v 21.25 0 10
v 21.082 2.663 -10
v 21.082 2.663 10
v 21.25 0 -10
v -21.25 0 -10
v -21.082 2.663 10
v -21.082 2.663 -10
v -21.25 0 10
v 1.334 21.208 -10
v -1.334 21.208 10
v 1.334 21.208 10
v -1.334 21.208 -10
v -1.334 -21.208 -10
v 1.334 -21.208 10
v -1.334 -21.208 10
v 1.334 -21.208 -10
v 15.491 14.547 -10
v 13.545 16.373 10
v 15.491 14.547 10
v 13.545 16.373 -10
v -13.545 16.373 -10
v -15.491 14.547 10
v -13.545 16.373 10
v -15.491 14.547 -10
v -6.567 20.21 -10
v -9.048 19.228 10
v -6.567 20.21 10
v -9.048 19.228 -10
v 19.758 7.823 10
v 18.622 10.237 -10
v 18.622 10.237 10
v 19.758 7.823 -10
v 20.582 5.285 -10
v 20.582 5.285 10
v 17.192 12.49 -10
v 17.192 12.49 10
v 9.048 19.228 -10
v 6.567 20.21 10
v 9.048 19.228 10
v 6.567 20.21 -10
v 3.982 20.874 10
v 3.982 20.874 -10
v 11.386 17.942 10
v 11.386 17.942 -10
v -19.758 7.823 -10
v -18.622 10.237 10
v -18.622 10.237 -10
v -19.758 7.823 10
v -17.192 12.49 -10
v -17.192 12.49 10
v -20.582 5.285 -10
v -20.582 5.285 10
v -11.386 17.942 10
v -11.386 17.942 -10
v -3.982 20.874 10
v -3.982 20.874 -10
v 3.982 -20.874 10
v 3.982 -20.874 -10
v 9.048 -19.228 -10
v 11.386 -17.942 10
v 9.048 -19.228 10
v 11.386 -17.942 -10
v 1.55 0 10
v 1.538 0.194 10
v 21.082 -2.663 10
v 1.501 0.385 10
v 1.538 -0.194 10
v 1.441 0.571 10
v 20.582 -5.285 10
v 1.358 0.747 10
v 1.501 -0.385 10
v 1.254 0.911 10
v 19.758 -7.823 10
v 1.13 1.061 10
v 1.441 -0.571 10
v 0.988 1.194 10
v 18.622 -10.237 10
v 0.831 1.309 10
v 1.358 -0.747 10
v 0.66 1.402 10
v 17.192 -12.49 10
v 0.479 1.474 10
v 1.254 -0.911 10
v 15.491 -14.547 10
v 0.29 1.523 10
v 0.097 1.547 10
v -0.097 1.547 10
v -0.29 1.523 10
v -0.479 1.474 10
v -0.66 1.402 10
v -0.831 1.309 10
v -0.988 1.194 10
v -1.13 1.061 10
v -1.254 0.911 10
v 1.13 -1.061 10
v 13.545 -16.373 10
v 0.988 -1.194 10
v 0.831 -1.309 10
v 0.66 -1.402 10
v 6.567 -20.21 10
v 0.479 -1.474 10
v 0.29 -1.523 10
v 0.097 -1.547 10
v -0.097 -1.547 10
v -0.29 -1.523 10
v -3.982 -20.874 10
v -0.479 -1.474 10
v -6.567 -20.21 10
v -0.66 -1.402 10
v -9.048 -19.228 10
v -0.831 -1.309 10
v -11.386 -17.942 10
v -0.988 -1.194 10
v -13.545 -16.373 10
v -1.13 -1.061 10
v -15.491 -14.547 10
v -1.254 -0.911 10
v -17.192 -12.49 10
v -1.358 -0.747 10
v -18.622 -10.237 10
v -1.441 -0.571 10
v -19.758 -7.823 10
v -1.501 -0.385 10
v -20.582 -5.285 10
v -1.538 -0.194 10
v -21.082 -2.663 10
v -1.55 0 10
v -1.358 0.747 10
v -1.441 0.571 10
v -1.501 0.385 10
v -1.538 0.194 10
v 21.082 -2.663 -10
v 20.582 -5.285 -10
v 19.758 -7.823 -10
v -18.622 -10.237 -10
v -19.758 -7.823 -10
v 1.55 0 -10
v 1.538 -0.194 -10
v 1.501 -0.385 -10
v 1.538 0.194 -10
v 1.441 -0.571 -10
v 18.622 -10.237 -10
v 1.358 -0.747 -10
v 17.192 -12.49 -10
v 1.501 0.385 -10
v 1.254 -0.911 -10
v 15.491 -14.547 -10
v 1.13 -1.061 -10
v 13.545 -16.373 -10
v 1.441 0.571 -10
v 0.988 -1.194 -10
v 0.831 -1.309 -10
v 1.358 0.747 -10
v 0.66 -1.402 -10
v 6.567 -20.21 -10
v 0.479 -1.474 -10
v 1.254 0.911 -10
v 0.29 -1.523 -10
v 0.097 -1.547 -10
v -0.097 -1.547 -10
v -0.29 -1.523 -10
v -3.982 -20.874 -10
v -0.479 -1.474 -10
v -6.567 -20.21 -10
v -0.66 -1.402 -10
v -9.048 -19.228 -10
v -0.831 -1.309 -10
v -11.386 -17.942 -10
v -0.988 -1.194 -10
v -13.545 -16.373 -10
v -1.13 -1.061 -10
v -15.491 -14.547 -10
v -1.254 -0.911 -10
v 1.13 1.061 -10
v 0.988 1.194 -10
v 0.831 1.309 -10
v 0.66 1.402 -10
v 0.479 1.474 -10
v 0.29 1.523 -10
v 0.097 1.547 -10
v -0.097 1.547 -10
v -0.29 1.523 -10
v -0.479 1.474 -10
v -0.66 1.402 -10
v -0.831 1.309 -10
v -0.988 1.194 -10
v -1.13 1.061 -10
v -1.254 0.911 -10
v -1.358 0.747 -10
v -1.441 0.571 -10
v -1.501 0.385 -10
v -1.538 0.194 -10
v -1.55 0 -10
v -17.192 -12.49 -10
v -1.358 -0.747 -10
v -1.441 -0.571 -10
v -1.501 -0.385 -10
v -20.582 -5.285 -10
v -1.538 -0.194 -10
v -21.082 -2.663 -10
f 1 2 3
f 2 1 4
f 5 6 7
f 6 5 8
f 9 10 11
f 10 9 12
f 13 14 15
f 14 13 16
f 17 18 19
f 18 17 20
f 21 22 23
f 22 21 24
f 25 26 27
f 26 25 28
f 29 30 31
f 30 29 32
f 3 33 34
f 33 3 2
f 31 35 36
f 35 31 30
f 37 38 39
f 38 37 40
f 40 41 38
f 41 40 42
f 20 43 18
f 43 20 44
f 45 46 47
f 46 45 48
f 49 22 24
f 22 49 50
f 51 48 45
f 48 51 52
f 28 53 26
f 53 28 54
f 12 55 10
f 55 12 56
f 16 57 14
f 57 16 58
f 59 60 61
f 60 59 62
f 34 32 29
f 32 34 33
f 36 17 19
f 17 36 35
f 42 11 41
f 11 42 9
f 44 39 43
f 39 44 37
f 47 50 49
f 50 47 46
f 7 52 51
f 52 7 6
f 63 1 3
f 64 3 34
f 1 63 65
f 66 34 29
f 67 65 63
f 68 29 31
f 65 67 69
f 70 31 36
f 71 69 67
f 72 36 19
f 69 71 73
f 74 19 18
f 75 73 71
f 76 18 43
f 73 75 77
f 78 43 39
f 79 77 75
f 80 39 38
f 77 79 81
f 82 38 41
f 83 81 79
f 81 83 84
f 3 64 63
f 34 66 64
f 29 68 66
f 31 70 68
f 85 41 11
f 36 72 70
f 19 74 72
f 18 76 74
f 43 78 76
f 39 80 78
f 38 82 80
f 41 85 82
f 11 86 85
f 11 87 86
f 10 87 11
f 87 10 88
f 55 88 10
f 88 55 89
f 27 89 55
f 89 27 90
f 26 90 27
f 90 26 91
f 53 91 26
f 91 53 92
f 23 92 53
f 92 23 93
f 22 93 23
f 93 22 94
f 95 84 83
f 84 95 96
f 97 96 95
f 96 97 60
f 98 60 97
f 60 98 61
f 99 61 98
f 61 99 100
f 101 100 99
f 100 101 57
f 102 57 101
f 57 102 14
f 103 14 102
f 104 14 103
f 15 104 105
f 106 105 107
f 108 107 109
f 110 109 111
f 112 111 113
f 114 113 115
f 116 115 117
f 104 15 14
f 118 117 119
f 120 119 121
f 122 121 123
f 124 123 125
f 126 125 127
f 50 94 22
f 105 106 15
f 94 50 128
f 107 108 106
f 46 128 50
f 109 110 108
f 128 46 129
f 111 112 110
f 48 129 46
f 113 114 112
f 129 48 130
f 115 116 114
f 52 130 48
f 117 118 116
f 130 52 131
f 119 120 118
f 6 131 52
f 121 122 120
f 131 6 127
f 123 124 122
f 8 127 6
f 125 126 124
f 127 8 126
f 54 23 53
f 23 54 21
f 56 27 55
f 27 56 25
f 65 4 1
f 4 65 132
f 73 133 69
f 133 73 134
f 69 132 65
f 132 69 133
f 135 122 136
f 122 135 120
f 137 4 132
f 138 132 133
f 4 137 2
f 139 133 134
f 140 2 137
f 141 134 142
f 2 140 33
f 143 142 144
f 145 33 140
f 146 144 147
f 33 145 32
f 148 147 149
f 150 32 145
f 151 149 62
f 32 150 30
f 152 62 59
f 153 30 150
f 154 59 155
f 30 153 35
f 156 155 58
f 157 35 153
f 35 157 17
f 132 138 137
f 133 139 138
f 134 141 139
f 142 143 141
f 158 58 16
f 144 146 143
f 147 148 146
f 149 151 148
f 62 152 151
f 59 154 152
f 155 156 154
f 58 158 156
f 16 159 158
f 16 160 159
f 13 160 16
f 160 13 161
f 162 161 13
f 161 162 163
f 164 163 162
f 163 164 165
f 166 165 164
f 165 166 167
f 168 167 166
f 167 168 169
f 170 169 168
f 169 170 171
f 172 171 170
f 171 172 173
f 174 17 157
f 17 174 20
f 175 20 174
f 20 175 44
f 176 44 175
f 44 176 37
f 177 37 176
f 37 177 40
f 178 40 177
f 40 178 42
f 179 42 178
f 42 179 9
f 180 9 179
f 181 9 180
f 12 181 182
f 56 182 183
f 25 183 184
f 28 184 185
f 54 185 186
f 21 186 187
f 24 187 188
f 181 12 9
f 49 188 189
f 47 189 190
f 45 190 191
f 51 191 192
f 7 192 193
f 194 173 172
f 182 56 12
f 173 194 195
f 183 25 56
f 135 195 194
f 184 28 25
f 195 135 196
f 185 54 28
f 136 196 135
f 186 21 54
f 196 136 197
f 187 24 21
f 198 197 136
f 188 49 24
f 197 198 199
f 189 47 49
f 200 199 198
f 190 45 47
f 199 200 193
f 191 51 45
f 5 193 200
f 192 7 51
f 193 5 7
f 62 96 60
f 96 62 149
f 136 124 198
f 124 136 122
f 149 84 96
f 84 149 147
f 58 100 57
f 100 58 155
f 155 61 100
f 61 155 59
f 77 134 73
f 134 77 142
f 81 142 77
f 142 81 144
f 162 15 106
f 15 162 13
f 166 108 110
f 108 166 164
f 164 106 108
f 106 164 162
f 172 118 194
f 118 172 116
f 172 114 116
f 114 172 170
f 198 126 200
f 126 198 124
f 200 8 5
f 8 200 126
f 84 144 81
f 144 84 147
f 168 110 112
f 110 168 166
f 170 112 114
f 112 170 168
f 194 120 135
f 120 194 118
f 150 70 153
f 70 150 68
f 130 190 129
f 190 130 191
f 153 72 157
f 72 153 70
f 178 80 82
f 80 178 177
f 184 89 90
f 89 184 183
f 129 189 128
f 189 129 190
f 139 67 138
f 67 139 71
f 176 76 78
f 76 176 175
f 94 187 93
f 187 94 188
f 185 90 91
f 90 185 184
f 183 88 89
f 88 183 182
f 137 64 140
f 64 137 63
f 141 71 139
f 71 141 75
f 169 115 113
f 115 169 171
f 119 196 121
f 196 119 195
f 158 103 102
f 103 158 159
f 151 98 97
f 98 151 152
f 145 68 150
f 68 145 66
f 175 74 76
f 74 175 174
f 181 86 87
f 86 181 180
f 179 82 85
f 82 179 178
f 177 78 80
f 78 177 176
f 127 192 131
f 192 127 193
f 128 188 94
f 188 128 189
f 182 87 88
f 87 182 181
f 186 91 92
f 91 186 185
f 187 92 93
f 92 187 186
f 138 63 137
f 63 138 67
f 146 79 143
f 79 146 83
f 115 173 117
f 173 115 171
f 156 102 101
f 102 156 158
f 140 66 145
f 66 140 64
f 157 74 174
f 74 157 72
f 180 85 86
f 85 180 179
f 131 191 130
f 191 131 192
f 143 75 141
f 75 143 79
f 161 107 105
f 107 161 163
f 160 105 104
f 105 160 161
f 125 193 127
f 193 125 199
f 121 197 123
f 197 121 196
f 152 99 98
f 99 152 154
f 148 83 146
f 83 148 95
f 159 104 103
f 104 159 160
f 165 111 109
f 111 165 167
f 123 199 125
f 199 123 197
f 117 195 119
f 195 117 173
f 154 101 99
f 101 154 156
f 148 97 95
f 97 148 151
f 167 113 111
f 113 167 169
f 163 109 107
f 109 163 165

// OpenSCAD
$fn = 50;


difference() {
	union() {
		translate(v = [0, 0, -10.0000000000]) {
			cylinder(h = 20, r = 21.2500000000);
		}
	}
	union() {
		translate(v = [0, 0, -100.0000000000]) {
			cylinder(h = 200, r = 1.5500000000);
		}
	}
}
